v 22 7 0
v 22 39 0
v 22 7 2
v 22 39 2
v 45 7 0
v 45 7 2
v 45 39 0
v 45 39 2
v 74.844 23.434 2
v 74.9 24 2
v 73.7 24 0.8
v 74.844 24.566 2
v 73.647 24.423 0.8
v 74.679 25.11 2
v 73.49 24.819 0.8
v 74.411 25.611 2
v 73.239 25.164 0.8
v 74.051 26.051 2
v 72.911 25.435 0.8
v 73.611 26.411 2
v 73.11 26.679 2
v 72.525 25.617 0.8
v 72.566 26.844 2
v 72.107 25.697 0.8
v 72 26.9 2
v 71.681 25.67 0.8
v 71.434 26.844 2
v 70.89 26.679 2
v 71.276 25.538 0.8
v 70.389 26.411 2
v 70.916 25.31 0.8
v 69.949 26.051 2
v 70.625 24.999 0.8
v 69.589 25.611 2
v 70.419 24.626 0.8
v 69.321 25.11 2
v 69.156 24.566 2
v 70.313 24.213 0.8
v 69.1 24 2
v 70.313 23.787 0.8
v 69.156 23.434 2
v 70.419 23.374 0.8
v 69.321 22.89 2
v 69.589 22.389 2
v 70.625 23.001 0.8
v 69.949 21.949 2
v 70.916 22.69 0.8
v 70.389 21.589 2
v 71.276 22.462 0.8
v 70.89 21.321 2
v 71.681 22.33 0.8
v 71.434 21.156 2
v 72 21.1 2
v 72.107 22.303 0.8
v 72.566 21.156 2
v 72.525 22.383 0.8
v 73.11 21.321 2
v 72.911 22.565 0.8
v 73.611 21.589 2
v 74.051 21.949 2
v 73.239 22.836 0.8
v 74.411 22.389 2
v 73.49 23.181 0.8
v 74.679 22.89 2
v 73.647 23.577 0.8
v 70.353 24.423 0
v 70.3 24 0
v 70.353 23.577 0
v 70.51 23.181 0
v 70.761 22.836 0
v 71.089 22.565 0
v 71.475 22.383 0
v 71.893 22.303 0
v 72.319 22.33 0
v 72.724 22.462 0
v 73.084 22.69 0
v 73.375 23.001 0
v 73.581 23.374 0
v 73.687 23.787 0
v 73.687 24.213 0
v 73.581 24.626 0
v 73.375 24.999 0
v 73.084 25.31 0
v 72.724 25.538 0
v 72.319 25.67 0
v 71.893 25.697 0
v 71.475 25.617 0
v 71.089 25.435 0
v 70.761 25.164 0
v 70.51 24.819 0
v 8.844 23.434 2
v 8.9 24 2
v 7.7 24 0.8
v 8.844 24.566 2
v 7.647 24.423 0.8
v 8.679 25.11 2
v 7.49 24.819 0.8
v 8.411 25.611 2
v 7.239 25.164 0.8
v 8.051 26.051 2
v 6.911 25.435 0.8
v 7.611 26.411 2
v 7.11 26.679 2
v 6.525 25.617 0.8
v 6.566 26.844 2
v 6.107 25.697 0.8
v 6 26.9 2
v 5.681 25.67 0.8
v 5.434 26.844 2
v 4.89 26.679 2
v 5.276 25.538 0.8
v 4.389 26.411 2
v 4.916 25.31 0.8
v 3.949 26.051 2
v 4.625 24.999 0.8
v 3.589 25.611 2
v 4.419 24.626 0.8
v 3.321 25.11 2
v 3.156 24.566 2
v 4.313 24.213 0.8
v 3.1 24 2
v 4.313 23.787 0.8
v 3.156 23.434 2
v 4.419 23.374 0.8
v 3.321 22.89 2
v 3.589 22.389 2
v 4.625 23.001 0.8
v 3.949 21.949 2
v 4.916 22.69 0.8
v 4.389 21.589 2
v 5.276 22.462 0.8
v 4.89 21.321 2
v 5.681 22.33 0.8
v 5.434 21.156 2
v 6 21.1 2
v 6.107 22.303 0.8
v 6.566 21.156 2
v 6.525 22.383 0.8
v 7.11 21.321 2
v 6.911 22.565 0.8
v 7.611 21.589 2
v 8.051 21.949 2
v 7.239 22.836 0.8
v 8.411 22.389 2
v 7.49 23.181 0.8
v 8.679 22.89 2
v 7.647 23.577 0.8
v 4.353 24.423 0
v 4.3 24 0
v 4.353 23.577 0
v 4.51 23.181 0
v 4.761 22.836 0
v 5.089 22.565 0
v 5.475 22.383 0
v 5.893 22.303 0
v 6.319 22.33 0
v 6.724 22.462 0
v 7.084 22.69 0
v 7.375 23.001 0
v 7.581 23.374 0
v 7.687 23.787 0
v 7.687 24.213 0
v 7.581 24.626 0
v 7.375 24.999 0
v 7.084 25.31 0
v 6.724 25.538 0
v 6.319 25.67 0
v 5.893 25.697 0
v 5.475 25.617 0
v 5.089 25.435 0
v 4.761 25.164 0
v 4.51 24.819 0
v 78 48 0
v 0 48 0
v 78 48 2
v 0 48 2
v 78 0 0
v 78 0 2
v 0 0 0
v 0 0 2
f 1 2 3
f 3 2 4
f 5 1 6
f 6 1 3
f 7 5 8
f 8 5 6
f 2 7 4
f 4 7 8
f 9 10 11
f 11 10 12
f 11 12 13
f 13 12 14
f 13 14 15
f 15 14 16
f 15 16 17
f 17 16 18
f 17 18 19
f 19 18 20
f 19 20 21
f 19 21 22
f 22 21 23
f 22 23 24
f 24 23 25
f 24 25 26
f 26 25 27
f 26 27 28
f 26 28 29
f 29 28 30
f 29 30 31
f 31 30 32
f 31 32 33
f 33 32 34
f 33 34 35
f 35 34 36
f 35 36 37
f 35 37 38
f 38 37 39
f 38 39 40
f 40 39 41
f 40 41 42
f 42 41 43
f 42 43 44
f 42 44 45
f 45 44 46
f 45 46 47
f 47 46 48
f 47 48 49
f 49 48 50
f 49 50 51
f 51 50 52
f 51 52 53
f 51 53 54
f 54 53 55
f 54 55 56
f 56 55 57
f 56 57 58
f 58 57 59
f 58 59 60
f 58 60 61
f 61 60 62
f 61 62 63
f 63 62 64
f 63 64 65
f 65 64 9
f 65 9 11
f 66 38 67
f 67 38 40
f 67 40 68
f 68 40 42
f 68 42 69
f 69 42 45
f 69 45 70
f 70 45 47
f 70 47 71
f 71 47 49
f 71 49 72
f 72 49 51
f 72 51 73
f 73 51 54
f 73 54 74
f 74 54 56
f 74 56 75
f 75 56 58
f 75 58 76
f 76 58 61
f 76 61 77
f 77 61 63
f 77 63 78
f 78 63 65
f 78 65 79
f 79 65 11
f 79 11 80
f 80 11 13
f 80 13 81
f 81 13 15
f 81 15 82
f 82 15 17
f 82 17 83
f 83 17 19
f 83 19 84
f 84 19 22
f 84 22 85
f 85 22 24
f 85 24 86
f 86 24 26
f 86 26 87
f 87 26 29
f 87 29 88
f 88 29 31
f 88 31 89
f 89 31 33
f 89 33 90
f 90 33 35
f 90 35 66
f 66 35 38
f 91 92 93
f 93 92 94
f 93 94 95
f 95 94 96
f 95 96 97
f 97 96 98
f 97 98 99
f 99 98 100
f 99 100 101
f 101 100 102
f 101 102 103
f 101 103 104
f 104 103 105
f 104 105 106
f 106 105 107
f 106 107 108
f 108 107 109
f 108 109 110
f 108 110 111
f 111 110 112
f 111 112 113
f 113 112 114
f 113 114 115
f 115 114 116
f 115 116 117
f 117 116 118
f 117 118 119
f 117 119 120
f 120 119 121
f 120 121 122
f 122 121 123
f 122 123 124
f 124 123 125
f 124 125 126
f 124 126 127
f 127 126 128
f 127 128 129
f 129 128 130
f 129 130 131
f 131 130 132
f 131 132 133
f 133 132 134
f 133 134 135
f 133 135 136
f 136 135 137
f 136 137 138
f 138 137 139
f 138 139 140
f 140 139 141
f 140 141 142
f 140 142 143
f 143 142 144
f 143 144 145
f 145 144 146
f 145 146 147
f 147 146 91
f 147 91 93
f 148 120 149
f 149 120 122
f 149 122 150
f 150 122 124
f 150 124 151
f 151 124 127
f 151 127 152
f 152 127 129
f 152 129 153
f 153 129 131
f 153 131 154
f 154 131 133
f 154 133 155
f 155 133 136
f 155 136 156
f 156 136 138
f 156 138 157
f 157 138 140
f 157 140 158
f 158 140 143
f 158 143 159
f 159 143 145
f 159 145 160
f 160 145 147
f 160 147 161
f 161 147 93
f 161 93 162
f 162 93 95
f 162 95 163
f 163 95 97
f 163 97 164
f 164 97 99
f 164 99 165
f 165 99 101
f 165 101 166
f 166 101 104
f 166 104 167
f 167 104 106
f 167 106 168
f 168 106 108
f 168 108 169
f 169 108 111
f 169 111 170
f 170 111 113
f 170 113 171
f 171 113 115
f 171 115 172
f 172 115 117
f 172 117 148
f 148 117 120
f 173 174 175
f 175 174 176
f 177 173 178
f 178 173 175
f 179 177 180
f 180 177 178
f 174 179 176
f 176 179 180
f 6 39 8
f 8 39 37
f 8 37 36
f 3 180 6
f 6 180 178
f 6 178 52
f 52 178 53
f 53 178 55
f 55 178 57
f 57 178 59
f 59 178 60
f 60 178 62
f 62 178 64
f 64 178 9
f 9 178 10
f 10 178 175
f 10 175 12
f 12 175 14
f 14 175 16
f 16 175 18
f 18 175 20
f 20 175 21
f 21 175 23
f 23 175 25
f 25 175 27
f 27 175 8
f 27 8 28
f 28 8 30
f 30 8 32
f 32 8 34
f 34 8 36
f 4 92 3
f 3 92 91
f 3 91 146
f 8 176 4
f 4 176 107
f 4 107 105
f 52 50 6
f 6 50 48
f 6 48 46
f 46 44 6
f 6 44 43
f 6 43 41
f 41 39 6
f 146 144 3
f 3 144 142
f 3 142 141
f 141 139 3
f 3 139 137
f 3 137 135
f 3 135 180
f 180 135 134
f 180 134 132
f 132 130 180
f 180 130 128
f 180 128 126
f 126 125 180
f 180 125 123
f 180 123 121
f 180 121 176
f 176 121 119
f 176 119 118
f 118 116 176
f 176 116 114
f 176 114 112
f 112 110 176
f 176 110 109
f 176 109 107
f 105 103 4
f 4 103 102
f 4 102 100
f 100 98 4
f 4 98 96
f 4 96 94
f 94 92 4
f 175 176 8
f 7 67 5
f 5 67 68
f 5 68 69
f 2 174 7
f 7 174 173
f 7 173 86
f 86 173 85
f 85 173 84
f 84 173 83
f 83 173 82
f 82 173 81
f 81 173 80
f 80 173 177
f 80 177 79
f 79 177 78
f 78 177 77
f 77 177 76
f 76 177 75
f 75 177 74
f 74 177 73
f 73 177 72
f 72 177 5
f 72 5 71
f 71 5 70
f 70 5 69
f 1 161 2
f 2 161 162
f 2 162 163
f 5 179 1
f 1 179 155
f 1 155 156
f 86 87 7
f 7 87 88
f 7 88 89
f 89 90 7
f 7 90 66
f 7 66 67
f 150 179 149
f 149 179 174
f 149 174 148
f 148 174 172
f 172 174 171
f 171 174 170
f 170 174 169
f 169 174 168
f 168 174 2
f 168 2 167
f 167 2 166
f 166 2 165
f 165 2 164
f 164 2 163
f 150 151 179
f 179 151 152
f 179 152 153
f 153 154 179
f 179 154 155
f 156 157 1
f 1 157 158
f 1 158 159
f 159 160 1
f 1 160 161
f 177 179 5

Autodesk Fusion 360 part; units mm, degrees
sketch "Sketch1" plane through (0, 0, 0) normal (0, 0, 1) x (1, 0, 0)
  line L0 (0, 0) -> (78, 0)
  line L1 (78, 0) -> (78, 48)
  line L2 (78, 48) -> (0, 48)
  line L3 (0, 48) -> (0, 0)
  dimension "d1" = 78
  dimension "d2" = 48
extrude "Extrude1" add sketch "Sketch1" along normal blind 2
sketch "Sketch2" plane through (0, 0, 2) normal (0, 0, 1) x (-1, 0, 0)
  line L0 (0, -48) -> (0, 0)
  line L1 (0, 0) -> (-78, 0)
  line L2 (-78, 0) -> (-78, -48)
  line L3 (-78, -48) -> (0, -48)
  point P0 (-72, -24)
  point P1 (-6, -24)
hole "Hole1" at (72, 24, 2) at (6, 24, 2) direction (0, 0, -1) diameter 3.4 depth 13 tip angle 118 countersink diameter 5.8 countersink angle 90
sketch "Sketch3" plane through (0, 0, 2) normal (0, 0, 1) x (-1, 0, 0)
  circle A0 centre (-72, -24) radius 2.9
  circle A1 centre (-6, -24) radius 2.9
  line L0 (0, -48) -> (0, 0)
  line L1 (0, 0) -> (-78, 0)
  line L2 (-78, 0) -> (-78, -48)
  line L3 (-78, -48) -> (0, -48)
  line L4 (-22, -39) -> (-45, -39)
  line L5 (-45, -39) -> (-45, -7)
  line L6 (-45, -7) -> (-22, -7)
  line L7 (-22, -7) -> (-22, -39)
extrude "Extrude2" cut sketch "Sketch3" against normal blind 500 contours L4 L5 L6 L7
